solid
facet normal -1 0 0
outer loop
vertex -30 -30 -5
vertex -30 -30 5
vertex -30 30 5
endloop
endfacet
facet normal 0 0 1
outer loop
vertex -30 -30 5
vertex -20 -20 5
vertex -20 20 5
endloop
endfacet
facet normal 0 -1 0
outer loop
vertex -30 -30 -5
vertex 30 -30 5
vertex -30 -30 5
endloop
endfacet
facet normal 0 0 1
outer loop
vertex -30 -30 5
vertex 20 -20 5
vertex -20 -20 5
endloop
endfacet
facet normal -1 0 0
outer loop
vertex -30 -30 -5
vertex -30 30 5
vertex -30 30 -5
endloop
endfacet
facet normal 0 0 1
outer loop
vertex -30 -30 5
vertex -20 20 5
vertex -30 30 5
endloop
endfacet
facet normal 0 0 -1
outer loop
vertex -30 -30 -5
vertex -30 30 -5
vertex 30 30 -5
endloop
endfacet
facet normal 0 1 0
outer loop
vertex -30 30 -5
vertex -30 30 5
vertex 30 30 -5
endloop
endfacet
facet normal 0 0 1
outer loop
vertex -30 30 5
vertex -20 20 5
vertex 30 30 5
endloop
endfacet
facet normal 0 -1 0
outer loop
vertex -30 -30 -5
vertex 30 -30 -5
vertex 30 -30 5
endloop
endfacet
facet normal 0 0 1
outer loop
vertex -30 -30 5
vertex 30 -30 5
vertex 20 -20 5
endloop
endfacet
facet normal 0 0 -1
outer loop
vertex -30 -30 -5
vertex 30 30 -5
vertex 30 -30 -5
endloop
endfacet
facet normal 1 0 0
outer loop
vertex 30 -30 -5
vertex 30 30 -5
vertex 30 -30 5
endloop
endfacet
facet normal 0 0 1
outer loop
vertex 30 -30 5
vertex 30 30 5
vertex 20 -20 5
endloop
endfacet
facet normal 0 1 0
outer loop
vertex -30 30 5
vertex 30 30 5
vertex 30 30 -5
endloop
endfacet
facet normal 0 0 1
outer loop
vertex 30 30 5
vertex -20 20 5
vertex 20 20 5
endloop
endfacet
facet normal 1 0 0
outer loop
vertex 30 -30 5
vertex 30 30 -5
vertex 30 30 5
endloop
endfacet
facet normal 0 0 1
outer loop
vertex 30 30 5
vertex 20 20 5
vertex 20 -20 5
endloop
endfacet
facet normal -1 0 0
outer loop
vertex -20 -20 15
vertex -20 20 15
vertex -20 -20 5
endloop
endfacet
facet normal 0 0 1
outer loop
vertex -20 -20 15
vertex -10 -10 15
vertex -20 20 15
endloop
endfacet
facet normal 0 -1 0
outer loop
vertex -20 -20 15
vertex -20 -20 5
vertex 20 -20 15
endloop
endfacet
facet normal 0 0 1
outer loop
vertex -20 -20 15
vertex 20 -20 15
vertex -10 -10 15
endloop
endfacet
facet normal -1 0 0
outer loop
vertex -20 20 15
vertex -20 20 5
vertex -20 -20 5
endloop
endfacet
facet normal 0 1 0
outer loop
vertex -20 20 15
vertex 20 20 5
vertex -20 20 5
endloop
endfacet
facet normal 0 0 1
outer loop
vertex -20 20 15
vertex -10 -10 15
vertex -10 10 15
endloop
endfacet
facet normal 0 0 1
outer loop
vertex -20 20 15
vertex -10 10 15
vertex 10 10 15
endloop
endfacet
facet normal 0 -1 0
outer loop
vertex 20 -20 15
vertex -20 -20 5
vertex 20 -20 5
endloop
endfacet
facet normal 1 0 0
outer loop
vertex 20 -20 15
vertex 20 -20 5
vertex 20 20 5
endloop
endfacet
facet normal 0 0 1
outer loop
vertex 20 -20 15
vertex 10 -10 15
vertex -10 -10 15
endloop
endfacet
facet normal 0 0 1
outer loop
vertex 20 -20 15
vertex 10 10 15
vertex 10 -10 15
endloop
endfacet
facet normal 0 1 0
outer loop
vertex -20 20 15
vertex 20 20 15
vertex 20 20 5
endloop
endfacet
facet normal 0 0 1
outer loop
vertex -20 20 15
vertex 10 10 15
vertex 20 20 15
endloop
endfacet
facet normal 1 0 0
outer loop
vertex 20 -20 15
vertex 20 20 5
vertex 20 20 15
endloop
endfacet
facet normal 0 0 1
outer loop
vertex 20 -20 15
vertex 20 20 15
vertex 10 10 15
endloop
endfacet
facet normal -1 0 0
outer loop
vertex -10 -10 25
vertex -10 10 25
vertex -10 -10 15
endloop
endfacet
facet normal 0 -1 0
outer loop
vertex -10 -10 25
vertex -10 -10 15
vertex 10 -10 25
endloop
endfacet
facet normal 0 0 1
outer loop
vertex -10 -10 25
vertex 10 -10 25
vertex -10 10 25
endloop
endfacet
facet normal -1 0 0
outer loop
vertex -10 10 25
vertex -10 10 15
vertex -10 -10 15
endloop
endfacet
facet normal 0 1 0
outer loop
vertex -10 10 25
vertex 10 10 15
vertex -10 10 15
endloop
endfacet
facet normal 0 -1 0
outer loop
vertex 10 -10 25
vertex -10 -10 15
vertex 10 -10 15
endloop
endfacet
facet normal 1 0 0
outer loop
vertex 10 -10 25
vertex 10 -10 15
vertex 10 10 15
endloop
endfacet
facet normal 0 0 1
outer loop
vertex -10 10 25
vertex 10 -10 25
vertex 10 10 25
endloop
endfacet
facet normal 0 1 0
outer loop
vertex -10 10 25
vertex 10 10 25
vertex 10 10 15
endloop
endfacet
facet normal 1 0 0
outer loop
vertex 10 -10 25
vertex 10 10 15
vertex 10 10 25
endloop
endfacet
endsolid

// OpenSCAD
// 3段の階段状ピラミッド（中心揃え）

module plate(size_xy, h, z=0, center=true) {
    cube([size_xy, size_xy, h], center=center);
}

bottom_size = 60;
mid_size    = 40;
top_size    = 20;

bottom_h = 10;
mid_h    = 10;
top_h    = 10;

// 板はそれぞれ高さ10mmで積み上げ（各段の中心を揃える）
translate([0, 0, 0])
union() {
    // 底板：z方向は下端が0になるように配置
    plate(bottom_size, bottom_h, z=bottom_h/2);

    // 中板：底板の上に載せる
    translate([0, 0, bottom_h])
        plate(mid_size, mid_h, z=mid_h/2);

    // 上板：中板の上に載せる
    translate([0, 0, bottom_h + mid_h])
        plate(top_size, top_h, z=top_h/2);
}
